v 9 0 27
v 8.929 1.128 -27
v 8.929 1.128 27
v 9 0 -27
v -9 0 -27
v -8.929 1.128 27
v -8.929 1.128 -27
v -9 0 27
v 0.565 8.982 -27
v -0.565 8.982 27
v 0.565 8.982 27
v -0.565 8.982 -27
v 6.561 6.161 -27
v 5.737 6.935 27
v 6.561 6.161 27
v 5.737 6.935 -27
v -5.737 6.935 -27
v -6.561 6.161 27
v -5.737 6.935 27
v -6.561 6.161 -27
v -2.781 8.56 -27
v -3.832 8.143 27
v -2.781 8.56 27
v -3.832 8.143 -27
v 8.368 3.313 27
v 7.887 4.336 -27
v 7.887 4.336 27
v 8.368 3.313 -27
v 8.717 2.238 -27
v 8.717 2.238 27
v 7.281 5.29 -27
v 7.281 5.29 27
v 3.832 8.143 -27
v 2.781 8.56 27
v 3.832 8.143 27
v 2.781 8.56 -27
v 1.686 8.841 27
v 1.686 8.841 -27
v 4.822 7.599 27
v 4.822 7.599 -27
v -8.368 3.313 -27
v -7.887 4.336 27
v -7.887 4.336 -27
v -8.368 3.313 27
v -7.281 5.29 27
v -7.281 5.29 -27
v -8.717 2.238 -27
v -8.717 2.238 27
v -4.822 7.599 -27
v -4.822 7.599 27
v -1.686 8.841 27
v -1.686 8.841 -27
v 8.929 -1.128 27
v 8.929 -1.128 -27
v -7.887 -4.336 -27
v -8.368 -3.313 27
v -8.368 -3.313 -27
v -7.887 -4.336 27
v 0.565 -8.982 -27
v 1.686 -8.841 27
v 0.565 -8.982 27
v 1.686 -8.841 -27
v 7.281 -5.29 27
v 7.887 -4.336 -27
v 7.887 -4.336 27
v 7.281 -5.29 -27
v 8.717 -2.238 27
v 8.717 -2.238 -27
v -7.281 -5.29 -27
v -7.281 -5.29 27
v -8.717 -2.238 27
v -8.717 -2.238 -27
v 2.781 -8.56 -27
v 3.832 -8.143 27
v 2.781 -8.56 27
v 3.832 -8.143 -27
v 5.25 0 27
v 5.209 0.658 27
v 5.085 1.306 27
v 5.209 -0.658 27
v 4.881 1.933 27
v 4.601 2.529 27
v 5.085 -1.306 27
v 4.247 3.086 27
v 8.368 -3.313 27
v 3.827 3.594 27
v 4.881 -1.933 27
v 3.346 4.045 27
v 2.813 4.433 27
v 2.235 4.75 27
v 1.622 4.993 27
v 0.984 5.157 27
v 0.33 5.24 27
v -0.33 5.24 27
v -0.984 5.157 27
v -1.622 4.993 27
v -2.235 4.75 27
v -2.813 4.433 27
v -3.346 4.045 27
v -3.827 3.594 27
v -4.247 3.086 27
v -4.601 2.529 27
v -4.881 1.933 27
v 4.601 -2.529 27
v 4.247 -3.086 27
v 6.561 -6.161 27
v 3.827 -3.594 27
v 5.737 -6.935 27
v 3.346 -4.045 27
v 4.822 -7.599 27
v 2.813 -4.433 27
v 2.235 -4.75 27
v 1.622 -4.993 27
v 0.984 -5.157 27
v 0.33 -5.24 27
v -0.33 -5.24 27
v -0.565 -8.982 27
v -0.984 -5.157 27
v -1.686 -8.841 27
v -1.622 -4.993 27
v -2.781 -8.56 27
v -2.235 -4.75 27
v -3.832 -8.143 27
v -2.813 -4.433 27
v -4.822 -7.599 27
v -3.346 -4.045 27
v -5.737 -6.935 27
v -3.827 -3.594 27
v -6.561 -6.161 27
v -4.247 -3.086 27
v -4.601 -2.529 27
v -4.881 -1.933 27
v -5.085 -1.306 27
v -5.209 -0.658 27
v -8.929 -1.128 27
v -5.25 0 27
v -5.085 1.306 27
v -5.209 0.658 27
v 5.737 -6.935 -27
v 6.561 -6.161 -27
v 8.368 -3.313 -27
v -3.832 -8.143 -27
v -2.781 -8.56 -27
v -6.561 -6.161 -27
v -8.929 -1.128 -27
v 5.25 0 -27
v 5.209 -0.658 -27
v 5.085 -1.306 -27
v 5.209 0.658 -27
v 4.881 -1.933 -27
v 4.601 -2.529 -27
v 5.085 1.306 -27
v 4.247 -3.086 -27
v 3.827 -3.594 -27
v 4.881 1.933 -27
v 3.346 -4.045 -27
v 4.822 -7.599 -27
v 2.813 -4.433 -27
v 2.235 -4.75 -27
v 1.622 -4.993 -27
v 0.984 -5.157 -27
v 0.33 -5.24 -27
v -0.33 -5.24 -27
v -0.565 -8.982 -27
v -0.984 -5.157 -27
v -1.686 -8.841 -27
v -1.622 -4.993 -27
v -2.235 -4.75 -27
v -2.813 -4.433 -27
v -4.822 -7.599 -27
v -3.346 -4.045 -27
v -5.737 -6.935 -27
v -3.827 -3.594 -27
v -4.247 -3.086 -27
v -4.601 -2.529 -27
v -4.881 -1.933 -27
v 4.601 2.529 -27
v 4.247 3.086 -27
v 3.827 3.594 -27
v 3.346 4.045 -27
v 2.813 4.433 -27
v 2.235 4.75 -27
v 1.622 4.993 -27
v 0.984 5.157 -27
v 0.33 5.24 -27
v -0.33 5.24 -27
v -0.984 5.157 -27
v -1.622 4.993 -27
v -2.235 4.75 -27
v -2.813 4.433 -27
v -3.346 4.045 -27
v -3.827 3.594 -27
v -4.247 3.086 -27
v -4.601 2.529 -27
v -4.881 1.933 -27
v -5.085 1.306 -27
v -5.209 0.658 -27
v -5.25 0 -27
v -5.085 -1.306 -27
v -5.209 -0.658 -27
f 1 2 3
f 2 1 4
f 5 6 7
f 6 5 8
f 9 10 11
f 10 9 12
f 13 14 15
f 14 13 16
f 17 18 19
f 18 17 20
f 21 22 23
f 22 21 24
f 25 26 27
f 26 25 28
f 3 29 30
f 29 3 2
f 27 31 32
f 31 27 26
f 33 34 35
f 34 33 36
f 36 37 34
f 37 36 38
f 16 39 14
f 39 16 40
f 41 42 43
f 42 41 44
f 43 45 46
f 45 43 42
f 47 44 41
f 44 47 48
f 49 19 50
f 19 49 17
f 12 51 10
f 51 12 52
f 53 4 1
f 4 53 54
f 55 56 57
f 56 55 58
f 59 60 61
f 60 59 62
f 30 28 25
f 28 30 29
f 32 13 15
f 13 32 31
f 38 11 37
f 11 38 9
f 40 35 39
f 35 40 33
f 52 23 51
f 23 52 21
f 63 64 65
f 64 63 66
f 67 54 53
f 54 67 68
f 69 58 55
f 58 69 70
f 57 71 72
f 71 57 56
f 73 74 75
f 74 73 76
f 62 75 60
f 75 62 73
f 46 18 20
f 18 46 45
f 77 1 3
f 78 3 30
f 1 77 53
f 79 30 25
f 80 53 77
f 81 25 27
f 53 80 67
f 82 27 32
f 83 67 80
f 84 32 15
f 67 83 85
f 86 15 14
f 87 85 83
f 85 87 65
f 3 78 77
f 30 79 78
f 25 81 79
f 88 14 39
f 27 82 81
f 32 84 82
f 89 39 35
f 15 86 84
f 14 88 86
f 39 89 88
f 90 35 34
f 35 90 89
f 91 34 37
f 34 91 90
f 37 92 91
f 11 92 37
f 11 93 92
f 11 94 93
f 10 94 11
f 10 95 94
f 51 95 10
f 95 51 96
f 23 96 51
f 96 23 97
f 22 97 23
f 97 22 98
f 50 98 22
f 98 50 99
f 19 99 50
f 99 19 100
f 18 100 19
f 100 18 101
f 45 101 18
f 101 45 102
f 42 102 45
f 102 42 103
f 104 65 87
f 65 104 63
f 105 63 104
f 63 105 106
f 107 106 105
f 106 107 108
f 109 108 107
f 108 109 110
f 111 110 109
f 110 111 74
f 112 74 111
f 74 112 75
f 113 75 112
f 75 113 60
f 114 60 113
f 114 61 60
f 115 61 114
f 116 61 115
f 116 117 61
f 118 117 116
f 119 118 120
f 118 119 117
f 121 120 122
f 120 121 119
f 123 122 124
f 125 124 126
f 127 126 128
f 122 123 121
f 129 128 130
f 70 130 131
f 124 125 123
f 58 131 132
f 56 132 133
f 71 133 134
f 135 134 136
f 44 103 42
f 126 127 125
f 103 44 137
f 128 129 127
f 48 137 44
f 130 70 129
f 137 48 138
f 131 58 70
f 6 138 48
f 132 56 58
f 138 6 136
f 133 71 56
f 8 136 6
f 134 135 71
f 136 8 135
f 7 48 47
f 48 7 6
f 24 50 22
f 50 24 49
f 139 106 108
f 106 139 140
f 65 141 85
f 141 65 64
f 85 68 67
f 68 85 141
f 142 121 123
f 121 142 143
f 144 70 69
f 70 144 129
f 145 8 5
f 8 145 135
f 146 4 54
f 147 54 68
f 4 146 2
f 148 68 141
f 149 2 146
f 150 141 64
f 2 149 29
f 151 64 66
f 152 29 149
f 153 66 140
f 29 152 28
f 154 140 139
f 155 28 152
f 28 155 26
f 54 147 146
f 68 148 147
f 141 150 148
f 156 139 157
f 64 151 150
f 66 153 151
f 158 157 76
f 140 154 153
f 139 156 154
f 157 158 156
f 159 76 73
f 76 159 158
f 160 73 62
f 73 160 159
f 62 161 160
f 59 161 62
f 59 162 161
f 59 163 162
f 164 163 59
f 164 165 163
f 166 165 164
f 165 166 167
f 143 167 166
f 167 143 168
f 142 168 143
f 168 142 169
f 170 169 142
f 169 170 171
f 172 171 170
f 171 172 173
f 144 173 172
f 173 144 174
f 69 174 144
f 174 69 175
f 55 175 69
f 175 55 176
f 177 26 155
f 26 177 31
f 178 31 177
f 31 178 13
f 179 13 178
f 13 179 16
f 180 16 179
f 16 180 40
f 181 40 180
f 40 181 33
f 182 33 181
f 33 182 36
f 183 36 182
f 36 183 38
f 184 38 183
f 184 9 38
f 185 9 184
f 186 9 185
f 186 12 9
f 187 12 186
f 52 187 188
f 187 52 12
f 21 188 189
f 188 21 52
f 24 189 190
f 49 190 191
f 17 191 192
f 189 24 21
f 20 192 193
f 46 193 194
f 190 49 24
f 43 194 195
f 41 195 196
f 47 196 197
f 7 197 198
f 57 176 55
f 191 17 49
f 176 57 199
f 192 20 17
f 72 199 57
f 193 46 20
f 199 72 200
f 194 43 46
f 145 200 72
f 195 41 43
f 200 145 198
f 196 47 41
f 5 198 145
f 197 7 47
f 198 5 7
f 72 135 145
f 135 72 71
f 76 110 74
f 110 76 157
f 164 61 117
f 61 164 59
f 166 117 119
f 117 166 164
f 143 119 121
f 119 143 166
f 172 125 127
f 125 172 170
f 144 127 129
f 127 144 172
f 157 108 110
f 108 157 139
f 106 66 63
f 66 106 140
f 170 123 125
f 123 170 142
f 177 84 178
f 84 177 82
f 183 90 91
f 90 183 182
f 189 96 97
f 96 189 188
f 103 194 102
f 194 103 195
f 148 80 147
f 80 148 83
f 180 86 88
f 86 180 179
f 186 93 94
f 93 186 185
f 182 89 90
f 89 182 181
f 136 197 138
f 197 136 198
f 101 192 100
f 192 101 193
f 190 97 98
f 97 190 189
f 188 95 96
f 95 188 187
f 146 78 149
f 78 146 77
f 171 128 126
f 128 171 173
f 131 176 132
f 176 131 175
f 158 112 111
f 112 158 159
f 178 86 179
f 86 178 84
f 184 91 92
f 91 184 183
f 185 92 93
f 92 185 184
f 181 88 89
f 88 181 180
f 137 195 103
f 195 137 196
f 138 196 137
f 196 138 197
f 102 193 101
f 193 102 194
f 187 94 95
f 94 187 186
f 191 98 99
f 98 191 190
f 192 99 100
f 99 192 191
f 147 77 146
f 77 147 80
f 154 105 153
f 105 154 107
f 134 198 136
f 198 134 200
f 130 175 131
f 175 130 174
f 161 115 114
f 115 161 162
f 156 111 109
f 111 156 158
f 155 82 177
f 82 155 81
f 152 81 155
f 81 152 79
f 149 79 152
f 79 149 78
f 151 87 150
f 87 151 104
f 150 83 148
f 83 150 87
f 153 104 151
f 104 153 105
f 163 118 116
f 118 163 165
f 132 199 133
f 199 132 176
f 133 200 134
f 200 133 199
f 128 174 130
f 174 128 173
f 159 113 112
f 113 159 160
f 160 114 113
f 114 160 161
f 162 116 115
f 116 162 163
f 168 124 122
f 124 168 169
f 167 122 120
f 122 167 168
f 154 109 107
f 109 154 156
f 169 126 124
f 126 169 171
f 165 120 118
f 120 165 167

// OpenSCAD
$fn = 50;


difference() {
	union() {
		translate(v = [0, 0, -27.0000000000]) {
			cylinder(h = 54, r = 9.0000000000);
		}
	}
	union() {
		translate(v = [0, 0, -100.0000000000]) {
			cylinder(h = 200, r = 5.2500000000);
		}
	}
}
